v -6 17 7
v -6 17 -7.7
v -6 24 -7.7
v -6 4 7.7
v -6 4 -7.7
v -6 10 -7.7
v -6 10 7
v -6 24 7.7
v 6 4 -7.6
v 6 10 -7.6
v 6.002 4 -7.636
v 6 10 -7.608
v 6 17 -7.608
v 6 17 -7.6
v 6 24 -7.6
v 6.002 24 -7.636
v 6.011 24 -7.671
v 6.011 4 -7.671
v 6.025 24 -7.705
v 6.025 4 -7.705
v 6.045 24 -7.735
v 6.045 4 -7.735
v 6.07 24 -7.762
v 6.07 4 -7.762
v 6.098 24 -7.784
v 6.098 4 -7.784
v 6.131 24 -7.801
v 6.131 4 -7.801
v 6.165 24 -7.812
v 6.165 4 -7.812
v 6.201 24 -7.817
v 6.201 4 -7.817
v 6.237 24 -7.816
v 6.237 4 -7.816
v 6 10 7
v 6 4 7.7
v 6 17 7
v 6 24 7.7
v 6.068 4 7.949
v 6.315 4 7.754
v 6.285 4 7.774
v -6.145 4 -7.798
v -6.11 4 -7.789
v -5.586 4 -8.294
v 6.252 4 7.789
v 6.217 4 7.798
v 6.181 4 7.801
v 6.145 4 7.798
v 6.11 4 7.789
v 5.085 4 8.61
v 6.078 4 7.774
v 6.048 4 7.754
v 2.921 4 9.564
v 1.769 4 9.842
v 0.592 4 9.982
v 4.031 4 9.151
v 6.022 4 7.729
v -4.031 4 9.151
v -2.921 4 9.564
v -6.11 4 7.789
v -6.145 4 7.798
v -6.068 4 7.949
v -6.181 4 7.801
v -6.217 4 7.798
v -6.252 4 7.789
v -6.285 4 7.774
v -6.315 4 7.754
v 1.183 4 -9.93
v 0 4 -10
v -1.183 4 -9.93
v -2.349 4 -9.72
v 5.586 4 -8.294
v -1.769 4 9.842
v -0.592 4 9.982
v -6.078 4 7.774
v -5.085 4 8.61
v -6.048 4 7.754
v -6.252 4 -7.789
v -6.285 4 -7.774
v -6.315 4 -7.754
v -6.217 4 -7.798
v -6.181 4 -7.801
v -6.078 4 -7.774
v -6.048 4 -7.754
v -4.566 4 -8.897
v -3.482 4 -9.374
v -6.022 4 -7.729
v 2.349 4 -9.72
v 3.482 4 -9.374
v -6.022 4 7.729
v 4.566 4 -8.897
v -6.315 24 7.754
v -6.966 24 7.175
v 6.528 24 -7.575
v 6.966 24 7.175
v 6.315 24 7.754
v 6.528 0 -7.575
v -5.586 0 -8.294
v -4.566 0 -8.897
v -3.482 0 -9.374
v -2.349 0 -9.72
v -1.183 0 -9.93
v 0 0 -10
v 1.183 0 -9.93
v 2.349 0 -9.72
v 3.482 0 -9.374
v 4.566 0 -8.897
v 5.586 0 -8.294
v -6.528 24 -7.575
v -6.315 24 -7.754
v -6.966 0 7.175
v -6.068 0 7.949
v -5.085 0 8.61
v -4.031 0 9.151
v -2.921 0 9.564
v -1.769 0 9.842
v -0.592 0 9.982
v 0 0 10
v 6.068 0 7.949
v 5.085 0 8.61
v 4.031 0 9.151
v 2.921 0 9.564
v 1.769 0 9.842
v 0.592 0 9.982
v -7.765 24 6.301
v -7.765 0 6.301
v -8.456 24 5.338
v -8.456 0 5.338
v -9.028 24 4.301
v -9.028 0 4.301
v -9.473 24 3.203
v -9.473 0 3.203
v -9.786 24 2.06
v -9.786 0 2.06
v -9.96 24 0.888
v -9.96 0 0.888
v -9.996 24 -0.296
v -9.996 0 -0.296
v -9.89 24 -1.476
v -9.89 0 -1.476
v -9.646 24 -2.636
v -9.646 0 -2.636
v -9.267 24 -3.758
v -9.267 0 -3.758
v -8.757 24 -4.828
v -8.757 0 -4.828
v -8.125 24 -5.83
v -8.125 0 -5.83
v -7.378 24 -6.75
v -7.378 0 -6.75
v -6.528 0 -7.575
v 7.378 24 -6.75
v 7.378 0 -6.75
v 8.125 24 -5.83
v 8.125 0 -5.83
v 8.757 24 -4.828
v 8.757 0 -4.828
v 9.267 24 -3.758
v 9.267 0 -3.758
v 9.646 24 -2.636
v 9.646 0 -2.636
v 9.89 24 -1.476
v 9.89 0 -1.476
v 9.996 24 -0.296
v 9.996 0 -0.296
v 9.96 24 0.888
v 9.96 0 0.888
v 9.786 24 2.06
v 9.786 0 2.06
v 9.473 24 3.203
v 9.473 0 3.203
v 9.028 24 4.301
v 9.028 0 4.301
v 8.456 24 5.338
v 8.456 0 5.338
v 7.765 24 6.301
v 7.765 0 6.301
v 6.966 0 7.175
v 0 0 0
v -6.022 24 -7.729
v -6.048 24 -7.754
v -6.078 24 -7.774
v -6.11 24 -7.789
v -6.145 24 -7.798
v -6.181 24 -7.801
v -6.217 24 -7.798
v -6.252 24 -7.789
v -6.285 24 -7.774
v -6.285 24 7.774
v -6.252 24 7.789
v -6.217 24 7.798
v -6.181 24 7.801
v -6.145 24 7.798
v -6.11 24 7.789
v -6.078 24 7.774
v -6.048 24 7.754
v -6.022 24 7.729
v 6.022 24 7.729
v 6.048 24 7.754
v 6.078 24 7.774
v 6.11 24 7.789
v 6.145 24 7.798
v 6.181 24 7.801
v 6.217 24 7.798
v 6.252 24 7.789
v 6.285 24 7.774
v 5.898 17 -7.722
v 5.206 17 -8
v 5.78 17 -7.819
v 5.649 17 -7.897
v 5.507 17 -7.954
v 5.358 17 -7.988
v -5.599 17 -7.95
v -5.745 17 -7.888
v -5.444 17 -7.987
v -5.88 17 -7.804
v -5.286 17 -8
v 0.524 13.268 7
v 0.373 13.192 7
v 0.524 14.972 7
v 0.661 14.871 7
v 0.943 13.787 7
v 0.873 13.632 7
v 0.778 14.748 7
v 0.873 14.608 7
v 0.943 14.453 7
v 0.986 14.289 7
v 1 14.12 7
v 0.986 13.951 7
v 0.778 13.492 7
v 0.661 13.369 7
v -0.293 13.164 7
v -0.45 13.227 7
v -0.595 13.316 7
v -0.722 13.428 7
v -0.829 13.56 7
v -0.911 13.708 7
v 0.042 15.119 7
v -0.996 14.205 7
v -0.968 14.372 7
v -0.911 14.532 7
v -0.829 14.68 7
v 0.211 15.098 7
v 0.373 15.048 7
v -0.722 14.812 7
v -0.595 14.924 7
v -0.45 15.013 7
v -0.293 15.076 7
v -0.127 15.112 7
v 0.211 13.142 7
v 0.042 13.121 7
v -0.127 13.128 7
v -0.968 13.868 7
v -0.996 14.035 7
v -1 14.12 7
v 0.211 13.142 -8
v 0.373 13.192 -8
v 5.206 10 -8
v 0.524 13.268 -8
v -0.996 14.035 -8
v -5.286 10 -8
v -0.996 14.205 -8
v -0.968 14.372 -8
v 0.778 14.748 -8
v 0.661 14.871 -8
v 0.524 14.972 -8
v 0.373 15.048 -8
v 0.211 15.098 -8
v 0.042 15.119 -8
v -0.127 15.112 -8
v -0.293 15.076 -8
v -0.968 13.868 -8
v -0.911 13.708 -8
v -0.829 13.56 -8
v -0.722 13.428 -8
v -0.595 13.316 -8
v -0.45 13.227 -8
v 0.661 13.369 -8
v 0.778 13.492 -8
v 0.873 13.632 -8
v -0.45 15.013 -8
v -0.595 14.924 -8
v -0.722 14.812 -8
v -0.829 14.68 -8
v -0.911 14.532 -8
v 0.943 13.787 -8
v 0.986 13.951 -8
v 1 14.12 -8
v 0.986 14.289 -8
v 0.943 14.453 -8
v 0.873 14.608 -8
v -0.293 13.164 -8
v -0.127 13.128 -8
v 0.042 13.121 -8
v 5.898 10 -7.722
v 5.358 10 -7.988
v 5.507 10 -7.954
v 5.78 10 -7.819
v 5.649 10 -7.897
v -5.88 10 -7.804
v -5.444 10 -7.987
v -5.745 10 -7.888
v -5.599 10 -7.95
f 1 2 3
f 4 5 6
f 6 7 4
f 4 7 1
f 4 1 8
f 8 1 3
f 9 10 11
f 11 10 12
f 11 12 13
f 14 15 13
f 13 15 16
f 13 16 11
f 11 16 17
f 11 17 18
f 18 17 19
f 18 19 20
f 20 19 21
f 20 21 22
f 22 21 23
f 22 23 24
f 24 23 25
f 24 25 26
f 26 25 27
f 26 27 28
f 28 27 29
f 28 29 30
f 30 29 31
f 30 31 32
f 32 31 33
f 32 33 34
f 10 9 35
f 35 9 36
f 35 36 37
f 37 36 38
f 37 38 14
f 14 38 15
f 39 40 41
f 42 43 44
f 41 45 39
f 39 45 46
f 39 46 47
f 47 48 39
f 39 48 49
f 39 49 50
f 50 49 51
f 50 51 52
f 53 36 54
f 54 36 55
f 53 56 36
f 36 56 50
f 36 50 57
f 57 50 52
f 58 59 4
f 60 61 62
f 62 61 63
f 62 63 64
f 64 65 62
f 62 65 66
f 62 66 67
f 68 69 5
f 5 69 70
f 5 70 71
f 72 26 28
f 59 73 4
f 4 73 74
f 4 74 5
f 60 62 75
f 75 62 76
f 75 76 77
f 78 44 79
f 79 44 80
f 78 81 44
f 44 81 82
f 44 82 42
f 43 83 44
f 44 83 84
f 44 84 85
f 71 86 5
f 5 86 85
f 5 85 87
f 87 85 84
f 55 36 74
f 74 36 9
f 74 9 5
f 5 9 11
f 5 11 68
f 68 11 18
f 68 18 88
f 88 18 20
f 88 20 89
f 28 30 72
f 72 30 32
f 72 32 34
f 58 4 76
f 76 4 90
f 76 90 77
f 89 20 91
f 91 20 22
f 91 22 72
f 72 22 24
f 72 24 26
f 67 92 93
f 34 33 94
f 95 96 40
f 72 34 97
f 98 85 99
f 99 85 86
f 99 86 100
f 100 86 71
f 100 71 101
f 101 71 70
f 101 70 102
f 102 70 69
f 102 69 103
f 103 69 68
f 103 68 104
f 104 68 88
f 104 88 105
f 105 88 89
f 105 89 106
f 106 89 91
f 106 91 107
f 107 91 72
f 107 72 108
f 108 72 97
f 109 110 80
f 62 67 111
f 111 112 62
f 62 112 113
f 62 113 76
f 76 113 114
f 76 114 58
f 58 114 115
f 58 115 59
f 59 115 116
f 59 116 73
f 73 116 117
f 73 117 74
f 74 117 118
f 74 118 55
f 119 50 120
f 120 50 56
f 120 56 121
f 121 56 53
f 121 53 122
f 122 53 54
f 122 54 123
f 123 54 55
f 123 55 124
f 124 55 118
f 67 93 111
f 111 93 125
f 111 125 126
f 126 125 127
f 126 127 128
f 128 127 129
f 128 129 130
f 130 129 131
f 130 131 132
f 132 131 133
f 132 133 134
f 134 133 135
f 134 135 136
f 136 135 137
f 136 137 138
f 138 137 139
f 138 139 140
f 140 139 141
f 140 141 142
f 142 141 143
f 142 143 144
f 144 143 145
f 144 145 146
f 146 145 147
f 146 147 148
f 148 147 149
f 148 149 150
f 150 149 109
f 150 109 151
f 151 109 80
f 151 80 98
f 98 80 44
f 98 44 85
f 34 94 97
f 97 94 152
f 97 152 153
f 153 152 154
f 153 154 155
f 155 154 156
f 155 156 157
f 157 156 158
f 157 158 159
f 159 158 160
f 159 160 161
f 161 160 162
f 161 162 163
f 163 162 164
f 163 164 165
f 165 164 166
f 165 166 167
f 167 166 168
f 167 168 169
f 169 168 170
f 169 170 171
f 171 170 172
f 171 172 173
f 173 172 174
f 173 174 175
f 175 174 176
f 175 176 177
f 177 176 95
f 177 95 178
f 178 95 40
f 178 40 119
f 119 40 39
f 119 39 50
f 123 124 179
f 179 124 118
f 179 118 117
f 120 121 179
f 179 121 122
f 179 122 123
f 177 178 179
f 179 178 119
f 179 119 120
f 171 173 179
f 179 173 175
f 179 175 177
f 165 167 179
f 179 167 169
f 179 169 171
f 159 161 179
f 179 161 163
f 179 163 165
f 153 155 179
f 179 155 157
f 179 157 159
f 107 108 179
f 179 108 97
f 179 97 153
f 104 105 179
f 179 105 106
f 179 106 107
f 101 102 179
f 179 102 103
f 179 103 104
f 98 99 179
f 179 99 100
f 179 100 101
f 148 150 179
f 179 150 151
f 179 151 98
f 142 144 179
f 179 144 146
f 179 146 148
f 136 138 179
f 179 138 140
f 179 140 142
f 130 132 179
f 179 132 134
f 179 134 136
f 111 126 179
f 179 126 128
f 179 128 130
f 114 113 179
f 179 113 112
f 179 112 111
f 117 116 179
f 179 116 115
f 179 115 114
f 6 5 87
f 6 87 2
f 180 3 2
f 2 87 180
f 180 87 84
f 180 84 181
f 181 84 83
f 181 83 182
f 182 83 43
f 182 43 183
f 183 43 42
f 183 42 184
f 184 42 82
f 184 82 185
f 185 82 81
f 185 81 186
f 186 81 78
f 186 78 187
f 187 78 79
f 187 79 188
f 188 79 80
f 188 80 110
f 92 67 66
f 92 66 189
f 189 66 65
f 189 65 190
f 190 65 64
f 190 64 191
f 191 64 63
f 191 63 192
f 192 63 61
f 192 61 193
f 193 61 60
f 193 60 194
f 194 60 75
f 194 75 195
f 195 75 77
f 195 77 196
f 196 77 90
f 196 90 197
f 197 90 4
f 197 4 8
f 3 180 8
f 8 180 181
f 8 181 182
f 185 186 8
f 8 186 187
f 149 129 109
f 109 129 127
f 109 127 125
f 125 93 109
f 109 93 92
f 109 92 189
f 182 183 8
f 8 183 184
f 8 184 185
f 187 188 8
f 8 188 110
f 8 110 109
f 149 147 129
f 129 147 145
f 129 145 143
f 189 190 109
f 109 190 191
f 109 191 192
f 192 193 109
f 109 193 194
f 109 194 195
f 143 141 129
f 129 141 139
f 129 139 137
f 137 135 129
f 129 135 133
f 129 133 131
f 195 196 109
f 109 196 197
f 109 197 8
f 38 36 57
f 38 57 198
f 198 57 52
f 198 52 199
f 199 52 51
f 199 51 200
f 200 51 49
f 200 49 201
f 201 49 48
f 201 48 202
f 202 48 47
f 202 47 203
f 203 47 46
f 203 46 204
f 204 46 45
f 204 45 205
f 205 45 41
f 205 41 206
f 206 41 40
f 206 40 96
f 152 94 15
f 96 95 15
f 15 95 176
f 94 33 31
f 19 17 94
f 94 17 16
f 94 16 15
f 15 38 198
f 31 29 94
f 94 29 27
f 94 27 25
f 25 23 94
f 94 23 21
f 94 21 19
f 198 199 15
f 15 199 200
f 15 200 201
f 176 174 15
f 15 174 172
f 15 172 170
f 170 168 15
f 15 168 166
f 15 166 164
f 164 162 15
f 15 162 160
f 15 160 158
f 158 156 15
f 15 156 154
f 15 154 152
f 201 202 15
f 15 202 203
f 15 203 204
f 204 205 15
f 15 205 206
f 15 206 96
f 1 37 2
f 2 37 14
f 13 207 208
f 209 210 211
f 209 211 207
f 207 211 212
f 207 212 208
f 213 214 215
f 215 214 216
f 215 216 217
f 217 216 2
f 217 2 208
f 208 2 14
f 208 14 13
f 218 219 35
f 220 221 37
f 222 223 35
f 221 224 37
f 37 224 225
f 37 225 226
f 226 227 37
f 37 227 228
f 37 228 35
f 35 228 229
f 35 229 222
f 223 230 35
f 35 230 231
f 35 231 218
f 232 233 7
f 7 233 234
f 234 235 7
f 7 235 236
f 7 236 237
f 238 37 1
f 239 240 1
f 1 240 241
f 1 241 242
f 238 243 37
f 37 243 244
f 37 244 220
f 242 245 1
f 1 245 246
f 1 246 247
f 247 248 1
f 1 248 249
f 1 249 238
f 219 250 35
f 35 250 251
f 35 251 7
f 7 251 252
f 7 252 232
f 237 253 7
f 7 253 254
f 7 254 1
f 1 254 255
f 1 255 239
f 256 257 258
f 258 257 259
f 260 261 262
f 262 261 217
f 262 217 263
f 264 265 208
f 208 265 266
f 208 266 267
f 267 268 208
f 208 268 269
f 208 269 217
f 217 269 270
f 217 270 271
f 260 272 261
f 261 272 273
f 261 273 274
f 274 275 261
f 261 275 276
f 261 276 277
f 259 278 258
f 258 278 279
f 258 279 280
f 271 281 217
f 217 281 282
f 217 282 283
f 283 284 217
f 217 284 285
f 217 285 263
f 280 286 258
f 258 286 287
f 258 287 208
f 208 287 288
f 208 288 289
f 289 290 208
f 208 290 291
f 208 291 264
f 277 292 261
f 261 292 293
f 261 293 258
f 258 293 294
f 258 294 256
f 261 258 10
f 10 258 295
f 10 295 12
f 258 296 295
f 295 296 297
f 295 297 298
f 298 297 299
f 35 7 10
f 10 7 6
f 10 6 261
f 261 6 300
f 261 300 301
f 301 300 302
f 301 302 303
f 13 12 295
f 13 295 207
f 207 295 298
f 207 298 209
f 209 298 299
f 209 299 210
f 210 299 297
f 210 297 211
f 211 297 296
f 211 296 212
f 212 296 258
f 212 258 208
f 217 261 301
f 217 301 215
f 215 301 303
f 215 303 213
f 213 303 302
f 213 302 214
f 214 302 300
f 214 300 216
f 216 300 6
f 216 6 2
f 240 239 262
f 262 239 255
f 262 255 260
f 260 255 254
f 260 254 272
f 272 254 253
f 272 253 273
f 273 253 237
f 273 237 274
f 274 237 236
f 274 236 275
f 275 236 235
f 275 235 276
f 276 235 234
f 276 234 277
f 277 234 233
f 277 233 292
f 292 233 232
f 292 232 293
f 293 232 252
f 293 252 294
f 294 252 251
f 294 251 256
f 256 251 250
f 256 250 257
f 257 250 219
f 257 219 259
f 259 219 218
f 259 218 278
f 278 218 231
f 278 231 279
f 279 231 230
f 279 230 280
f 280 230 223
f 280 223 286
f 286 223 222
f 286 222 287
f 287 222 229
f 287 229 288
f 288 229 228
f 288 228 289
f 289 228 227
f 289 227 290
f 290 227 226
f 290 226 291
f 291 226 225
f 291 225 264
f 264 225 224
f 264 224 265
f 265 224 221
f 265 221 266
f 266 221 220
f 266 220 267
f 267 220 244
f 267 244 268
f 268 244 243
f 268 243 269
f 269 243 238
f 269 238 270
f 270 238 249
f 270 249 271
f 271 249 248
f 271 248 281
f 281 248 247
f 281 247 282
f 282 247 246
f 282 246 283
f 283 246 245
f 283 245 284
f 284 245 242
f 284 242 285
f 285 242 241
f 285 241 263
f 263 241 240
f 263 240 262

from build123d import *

# Parameters (mm, degrees)
SKETCH1_R           = 10
BOSS_EXTRUDE1_DEPTH = 4
BOSS_EXTRUDE2_DEPTH = 20
SKETCH6_W           = 12
SKETCH6_H           = 15
BOSS_EXTRUDE4_DEPTH = 3
SKETCH10_W          = 12
SKETCH10_H          = 15
BOSS_EXTRUDE5_DEPTH = 4
FILLET1_R           = 1
CUT_EXTRUDE3_REACH  = 33.064
SKETCH7_R           = 1


with BuildPart() as part:
    # Sketch1 → Boss-Extrude1 (new body)
    with BuildSketch(Plane(origin=(0, 0, 0), x_dir=(1, 0, 0), z_dir=(0, 1, 0))):
        with Locations(Location((0, 0, 0), (0, 0, 270))):
            Circle(SKETCH1_R)
    extrude(amount=BOSS_EXTRUDE1_DEPTH)

    # Sketch2 → Boss-Extrude2 (add)
    with BuildSketch(Plane(origin=(0, 4, 0), x_dir=(1, 0, 0), z_dir=(0, 1, 0))):
        with BuildLine():
            Line((-6, 7.7), (-6, -7.7))
            ThreePointArc((-6, -7.7), (-6.145446182, -7.798029265), (-6.315135994, -7.753648005))
            ThreePointArc((-6.315135994, -7.753648005), (-10, 0), (-6.315135994, 7.753648005))
            ThreePointArc((-6.315135994, 7.753648005), (-6.145446182, 7.798029265), (-6, 7.7))
        make_face()
        with BuildLine():
            Line((6, 7.6), (6, -7.7))
            ThreePointArc((6, -7.7), (6.145446182, -7.798029265), (6.315135994, -7.753648005))
            ThreePointArc((6.315135994, -7.753648005), (9.999874962, 0.050007502), (6.237272998, 7.816420251))
            ThreePointArc((6.237272998, 7.816420251), (6.069665116, 7.76190005), (6, 7.6))
        make_face()
    extrude(amount=BOSS_EXTRUDE2_DEPTH)

    # Sketch6 → Boss-Extrude4 (add)
    with BuildSketch(Plane(origin=(0, 14, 0), x_dir=(1, 0, 0), z_dir=(0, 1, 0))):
        with Locations((0, 0.5)):
            Rectangle(SKETCH6_W, SKETCH6_H)
    extrude(amount=BOSS_EXTRUDE4_DEPTH)

    # Sketch10 → Boss-Extrude5 (add)
    with BuildSketch(Plane.XZ.offset(-14)):
        with Locations((0, -0.5)):
            Rectangle(SKETCH10_W, SKETCH10_H)
    extrude(amount=BOSS_EXTRUDE5_DEPTH)

    # Fillet1
    # the kernel refuses this fillet: 1 mm, written as the material it takes off along each edge
    with BuildSketch(Plane(origin=(6, 14, -8), x_dir=(0, 0, 1), z_dir=(0, -1, 0))) as fillet1_piece_1_section:
        with BuildLine():
            CenterArc((1, 0.793964744), FILLET1_R, 180, 52.557582208)
            Line((0, 0.793964744), (-0.02, 0.793964744))
            Line((-0.02, 0.793964744), (-0.02, 0))
            Line((-0.02, 0), (0, -0.02))
            ThreePointArc((0, -0.02), (0.196018099, -0.02), (0.379876922, -0.015879295))
            Line((0.379876922, -0.015879295), (0.392036198, 0))
        make_face()
    fillet1_piece_1 = extrude(amount=5.984911861, mode=Mode.PRIVATE)
    fillet1_piece_1 = fillet1_piece_1 - Plane(origin=(6.213704622, 11.00754407, -7.603981901), x_dir=(0.11026568498271415, 0, -0.993902147454815), z_dir=(0, -1, 0)) * Cylinder(0.213741715, 16, mode=Mode.PRIVATE)
    add(fillet1_piece_1, mode=Mode.SUBTRACT)
    with BuildSketch(Plane(origin=(-6, 14, -8), x_dir=(0, 0, 1), z_dir=(0, -1, 0))) as fillet1_piece_2_section:
        with BuildLine():
            CenterArc((1, -0.714142843), FILLET1_R, 134.427004001, 45.572995999)
            Line((0, -0.714142843), (-0.02, -0.714142843))
            Line((-0.02, -0.714142843), (-0.02, 0))
            Line((-0.02, 0), (0, 0.02))
            ThreePointArc((0, 0.02), (0.15, 0.02), (0.286, 0.014282857))
            Line((0.286, 0.014282857), (0.3, 0))
        make_face()
    fillet1_piece_2 = extrude(amount=5.785357107, mode=Mode.PRIVATE)
    fillet1_piece_2 = fillet1_piece_2 - Plane(origin=(-6.181186106, 11.107321446, -7.588087879), x_dir=(-0.628985521858462, 0, -0.7774170137657384), z_dir=(0, -1, 0)) * Cylinder(0.212961798, 15, mode=Mode.PRIVATE)
    add(fillet1_piece_2, mode=Mode.SUBTRACT)
    with BuildSketch(Plane(origin=(-6, 14, -8), x_dir=(0, 0, 1), z_dir=(0, 1, 0))) as fillet1_piece_3_section:
        with BuildLine():
            CenterArc((1, 0.714142843), FILLET1_R, 180, 45.572995999)
            Line((0, 0.714142843), (-0.02, 0.714142843))
            Line((-0.02, 0.714142843), (-0.02, 0))
            Line((-0.02, 0), (0, -0.02))
            ThreePointArc((0, -0.02), (0.15, -0.02), (0.286, -0.014282857))
            Line((0.286, -0.014282857), (0.3, 0))
        make_face()
    fillet1_piece_3 = extrude(amount=4.785357107, mode=Mode.PRIVATE)
    fillet1_piece_3 = fillet1_piece_3 - Plane(origin=(-6.181186106, 16.392678554, -7.588087879), x_dir=(-0.628985521858462, 0, -0.7774170137657384), z_dir=(0, -1, 0)) * Cylinder(0.212961798, 13, mode=Mode.PRIVATE)
    add(fillet1_piece_3, mode=Mode.SUBTRACT)
    with BuildSketch(Plane(origin=(6, 14, -8), x_dir=(0, 0, 1), z_dir=(0, 1, 0))) as fillet1_piece_4_section:
        with BuildLine():
            CenterArc((1, -0.793964744), FILLET1_R, 127.442417792, 52.557582208)
            Line((0, -0.793964744), (-0.02, -0.793964744))
            Line((-0.02, -0.793964744), (-0.02, 0))
            Line((-0.02, 0), (0, 0.02))
            ThreePointArc((0, 0.02), (0.196018099, 0.02), (0.379876922, 0.015879295))
            Line((0.379876922, 0.015879295), (0.392036198, 0))
        make_face()
    fillet1_piece_4 = extrude(amount=4.984911861, mode=Mode.PRIVATE)
    fillet1_piece_4 = fillet1_piece_4 - Plane(origin=(6.213704622, 16.49245593, -7.603981901), x_dir=(0.11026568498271415, 0, -0.993902147454815), z_dir=(0, -1, 0)) * Cylinder(0.213741715, 14, mode=Mode.PRIVATE)
    add(fillet1_piece_4, mode=Mode.SUBTRACT)

    # Sketch7 → Cut-Extrude3 (cut, up to next)
    with BuildSketch(Plane.XY.offset(7), mode=Mode.PRIVATE) as cut_extrude3_sk1:
        with Locations((0, 14.12)):
            Circle(SKETCH7_R)
    cut_extrude3_tool1 = extrude(cut_extrude3_sk1.sketch, amount=-CUT_EXTRUDE3_REACH, mode=Mode.PRIVATE) & part.part
    add(cut_extrude3_tool1.solids().sort_by_distance((0, 14.12, 7))[0], mode=Mode.SUBTRACT)


solid = part.part
